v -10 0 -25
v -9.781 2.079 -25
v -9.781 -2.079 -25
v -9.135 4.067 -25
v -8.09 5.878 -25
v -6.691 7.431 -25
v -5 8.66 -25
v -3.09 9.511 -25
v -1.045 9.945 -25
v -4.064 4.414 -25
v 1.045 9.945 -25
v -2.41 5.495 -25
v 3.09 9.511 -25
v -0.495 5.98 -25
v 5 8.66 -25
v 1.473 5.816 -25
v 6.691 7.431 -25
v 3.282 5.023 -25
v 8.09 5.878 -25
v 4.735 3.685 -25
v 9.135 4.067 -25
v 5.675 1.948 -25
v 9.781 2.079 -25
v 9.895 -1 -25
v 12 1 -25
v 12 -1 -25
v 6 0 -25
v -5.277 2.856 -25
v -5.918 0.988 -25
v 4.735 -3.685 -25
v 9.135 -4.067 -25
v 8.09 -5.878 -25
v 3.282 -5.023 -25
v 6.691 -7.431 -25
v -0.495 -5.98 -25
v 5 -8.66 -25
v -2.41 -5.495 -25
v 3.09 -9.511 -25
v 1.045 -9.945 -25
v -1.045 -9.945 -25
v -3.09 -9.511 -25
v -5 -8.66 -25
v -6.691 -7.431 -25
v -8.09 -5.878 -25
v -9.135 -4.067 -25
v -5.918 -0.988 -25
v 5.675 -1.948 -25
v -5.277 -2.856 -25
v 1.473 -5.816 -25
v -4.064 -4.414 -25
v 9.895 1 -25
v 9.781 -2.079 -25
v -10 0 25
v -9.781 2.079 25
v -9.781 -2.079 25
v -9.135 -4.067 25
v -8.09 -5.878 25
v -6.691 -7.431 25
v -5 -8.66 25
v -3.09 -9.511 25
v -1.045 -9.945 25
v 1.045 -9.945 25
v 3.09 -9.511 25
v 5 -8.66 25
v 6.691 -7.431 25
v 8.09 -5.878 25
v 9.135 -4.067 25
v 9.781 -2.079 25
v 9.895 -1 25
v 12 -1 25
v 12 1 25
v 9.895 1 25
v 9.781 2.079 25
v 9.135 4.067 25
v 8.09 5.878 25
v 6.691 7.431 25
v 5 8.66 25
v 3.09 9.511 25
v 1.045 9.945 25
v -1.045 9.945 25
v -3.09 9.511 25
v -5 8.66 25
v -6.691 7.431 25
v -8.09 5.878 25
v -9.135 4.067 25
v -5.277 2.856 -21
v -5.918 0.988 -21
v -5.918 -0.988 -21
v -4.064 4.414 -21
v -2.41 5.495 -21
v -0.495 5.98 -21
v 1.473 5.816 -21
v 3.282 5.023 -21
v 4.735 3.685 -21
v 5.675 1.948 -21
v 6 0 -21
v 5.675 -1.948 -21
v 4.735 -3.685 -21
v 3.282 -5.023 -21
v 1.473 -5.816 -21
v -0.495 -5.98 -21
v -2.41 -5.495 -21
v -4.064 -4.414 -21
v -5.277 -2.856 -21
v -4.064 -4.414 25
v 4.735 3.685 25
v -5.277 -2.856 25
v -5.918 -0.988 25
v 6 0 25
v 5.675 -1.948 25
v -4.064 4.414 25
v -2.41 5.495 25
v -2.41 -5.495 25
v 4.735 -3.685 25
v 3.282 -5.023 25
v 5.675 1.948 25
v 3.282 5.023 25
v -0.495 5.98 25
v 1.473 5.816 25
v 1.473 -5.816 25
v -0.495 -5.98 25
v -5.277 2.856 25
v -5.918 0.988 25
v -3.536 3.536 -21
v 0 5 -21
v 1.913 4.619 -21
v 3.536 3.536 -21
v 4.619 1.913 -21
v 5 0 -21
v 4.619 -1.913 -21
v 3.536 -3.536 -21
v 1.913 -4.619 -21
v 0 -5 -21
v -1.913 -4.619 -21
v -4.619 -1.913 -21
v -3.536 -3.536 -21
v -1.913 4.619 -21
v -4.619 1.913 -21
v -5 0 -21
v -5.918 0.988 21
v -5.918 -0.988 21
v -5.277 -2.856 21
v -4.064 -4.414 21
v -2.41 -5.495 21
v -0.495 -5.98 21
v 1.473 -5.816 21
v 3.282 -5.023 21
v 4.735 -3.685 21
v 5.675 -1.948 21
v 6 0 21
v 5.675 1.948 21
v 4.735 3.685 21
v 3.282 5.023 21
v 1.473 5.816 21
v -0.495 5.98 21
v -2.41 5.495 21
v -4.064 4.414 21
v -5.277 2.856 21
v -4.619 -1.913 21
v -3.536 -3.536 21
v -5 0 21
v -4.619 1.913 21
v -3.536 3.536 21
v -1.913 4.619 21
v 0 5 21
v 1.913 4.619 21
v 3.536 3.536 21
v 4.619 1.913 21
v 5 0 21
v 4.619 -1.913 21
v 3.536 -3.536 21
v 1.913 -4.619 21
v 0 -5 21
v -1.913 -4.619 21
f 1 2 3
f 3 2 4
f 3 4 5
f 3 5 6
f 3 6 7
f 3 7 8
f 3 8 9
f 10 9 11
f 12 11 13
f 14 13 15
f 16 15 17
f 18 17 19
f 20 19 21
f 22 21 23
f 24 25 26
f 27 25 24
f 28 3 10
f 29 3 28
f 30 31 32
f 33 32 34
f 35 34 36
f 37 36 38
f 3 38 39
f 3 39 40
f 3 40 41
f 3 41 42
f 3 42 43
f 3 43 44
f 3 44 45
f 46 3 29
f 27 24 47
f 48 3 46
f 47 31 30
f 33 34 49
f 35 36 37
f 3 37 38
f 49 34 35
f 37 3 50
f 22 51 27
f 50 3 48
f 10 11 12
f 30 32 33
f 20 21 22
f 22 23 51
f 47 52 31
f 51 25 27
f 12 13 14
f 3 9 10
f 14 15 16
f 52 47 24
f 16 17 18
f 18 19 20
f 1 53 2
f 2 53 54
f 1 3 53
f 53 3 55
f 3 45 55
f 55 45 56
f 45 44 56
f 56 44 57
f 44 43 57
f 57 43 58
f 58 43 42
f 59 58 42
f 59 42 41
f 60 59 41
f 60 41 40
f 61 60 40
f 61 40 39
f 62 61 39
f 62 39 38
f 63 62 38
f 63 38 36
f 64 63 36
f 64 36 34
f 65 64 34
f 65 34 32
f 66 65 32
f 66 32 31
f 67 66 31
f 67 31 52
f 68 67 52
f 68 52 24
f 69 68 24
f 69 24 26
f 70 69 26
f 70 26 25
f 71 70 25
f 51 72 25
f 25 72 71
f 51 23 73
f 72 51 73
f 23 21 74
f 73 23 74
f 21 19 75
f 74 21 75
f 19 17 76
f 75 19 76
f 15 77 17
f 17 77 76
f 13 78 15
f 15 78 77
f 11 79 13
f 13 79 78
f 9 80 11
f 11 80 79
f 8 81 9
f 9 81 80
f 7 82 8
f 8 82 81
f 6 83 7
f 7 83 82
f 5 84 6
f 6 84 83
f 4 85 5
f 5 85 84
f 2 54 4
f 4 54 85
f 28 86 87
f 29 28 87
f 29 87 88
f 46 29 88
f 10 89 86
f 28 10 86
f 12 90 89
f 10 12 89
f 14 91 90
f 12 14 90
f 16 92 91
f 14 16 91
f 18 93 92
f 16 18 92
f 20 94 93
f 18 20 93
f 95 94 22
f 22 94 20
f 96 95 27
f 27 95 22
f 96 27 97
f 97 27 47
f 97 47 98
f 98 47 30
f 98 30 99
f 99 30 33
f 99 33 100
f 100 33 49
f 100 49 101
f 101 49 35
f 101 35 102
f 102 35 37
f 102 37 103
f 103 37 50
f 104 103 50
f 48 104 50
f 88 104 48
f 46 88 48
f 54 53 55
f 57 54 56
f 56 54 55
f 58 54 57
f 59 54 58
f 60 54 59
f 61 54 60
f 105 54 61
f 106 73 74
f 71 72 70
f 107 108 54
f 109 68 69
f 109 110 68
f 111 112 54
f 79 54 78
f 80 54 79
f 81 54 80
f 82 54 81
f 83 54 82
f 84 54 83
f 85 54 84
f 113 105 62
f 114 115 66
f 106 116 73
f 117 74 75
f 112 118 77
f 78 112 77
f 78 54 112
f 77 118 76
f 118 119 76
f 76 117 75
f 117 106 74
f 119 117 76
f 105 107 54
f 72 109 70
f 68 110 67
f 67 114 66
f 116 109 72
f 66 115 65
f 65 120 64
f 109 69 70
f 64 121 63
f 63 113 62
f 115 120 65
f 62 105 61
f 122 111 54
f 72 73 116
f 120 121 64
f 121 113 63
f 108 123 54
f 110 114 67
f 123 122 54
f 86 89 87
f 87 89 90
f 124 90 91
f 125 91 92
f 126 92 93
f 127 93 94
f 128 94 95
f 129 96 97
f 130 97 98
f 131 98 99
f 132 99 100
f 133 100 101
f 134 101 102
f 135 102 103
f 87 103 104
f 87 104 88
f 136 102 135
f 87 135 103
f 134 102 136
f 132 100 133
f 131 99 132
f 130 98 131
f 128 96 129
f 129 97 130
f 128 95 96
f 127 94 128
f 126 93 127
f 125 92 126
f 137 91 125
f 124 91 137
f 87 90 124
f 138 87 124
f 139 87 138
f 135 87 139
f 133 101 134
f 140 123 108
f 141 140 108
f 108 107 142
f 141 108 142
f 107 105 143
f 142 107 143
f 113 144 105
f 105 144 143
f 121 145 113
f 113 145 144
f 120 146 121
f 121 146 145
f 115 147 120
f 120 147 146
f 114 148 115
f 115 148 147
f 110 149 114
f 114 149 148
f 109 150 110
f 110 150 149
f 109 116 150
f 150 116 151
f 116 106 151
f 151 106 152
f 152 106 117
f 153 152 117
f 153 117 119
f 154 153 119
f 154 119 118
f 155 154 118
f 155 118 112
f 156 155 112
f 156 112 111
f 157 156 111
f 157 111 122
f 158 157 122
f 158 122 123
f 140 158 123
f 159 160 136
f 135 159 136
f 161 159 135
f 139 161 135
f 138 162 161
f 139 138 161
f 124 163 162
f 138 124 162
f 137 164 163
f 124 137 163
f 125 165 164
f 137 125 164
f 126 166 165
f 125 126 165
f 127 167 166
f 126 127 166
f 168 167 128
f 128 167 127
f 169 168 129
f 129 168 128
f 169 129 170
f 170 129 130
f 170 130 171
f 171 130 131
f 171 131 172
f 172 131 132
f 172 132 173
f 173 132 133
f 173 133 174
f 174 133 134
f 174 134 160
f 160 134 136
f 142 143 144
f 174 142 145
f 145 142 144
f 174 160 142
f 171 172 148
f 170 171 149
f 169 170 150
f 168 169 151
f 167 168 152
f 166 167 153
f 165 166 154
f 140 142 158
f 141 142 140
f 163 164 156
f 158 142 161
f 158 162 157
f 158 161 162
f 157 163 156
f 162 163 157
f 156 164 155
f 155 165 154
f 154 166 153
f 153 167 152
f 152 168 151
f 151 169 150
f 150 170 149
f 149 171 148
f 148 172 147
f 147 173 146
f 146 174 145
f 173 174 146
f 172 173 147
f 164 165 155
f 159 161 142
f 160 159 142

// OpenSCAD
// inner radius of bearing
ri_bearing = 4;
// outer radius of bearing
ro_bearing = 6;
// width of bearing
w_bearing = 4;

// outer radius of adapter, should be updated to be something fixed
r_adapter = ro_bearing+4;
// width/length of adapter, along its axis
w_adapter = 50;
// heigh/width of the notch key
w_notch = 2;

union() {
  difference() {
    // outer cyl
    cylinder(h = w_adapter, r = r_adapter, center = true);
    // inner cyl
    cylinder(h = w_adapter*2, r = ri_bearing+1, center = true);

    // end cut-outs
    translate([0, 0, w_adapter/2]) {
      cylinder(h = w_bearing*2, r = ro_bearing, center = true);
    }
    translate([0, 0, -w_adapter/2]) {
      cylinder(h = w_bearing*2, r = ro_bearing, center = true);
    }
  }
  // notch key
  translate([r_adapter, 0, 0]) {
    cube([w_notch*2, w_notch, w_adapter], center = true);
  }
}
